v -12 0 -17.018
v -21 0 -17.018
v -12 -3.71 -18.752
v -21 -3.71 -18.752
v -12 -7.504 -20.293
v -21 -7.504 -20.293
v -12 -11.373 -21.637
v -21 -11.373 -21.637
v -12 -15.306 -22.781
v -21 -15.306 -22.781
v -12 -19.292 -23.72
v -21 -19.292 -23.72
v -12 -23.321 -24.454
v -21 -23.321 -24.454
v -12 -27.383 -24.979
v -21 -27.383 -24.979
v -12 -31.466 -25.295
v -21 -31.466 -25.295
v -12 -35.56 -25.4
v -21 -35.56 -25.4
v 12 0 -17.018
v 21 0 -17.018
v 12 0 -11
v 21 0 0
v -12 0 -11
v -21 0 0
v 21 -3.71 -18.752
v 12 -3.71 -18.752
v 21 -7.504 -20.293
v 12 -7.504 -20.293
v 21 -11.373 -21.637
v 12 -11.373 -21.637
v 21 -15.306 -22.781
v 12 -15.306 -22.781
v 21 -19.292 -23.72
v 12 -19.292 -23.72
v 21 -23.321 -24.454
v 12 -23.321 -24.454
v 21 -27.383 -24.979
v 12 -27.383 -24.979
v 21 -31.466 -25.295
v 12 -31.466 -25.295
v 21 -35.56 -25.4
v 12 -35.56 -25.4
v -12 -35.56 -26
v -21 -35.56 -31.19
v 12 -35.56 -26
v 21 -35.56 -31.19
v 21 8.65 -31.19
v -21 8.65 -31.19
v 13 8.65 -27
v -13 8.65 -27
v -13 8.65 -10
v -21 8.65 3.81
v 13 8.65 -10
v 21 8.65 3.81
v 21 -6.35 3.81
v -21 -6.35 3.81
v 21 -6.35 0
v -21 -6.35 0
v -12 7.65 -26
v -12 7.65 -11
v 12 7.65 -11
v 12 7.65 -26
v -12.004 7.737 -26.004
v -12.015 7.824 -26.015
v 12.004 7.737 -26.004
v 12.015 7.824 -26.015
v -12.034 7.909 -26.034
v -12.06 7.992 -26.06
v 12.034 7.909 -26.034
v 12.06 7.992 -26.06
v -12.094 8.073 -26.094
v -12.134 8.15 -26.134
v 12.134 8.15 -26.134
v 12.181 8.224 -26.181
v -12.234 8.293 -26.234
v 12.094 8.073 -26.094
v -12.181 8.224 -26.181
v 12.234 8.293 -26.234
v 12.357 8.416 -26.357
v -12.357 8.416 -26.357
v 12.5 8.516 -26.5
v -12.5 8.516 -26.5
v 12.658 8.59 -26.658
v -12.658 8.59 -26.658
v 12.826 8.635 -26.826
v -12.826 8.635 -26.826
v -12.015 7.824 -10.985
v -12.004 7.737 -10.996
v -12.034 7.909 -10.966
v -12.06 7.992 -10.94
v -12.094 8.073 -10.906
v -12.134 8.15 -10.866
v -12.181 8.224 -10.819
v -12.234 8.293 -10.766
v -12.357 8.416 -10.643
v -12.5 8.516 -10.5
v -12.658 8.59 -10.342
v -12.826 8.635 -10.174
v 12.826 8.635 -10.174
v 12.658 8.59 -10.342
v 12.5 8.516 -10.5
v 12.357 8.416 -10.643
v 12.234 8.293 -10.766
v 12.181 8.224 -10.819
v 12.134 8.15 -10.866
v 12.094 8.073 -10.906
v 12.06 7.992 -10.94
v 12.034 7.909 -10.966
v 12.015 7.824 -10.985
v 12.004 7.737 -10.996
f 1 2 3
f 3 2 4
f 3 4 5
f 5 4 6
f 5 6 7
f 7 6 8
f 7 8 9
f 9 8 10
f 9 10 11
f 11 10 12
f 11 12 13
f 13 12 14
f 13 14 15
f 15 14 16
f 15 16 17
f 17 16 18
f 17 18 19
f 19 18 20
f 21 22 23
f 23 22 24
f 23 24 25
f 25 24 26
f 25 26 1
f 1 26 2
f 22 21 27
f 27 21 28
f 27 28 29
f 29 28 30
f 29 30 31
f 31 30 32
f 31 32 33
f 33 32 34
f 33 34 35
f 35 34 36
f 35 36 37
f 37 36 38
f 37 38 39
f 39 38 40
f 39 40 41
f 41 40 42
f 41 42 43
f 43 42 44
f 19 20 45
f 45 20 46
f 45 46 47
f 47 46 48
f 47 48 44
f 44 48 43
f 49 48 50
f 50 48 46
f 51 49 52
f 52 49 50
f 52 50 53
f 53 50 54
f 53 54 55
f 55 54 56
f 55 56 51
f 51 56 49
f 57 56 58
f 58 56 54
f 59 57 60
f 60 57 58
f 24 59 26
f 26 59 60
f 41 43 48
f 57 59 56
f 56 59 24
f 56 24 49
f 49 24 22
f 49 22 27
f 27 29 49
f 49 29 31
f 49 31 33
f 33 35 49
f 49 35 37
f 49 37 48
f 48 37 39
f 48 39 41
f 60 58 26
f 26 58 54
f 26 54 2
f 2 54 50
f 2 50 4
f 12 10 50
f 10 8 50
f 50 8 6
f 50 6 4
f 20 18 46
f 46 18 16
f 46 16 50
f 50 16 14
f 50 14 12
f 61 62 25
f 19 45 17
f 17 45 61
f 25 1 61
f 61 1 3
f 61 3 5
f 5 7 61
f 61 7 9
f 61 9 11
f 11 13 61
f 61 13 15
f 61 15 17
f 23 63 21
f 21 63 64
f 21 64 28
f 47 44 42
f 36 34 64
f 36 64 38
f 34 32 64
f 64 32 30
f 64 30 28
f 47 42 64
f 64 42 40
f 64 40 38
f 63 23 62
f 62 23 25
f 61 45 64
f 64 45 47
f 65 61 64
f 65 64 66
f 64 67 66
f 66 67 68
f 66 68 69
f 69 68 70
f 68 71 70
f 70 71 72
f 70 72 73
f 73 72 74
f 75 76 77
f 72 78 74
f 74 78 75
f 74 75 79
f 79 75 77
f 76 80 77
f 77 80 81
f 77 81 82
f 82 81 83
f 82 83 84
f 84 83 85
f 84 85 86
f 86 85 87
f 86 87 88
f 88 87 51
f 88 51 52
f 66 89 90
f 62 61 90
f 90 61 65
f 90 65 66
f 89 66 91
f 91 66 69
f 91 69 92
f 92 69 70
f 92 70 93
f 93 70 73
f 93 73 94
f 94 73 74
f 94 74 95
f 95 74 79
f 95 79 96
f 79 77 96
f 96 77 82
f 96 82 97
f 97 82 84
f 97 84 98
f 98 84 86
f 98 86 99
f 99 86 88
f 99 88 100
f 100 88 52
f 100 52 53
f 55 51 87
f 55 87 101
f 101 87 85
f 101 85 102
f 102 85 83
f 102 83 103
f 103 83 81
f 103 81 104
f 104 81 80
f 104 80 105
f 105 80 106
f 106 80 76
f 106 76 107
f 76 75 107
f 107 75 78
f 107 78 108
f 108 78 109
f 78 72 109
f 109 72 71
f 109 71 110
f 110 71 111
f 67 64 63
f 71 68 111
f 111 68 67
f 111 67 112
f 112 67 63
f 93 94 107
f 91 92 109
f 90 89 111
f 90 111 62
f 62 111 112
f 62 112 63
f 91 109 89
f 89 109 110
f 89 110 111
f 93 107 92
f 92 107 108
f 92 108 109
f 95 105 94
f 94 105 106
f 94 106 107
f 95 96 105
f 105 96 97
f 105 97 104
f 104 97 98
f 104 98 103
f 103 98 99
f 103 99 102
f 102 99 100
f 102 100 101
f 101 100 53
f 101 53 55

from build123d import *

# Parameters (mm, degrees)
BOSS_EXTRUDE1_DEPTH = 21
SKETCH3_W           = 24
SKETCH3_H           = 15
CUT_EXTRUDE1_DEPTH  = 59.037403457
FILLET1_R           = 1


with BuildPart() as part:
    # Sketch2 → Boss-Extrude1 (new, symmetric)
    with BuildSketch(Plane(origin=(0, 0, 0), x_dir=(0, 0, -1), z_dir=(1, 0, 0))):
        with BuildLine():
            Line((0, 0), (0, -6.35))
            Line((0, -6.35), (-3.81, -6.35))
            Line((-3.81, -6.35), (-3.81, 8.65))
            Line((-3.81, 8.65), (31.19, 8.65))
            Line((31.19, 8.65), (31.19, -35.56))
            Line((31.19, -35.56), (25.4, -35.56))
            ThreePointArc((25.4, -35.56), (23.276174446, -17.292737452), (17.018, 0))
            Line((17.018, 0), (0, 0))
        make_face()
    extrude(amount=BOSS_EXTRUDE1_DEPTH, both=True)

    # Sketch3 → Cut-Extrude1 (cut, through all)
    with BuildSketch(Plane(origin=(0, 8.65, 0), x_dir=(1, 0, 0), z_dir=(0, 1, 0))):
        with Locations((0, 18.5)):
            Rectangle(SKETCH3_W, SKETCH3_H)
    extrude(amount=-CUT_EXTRUDE1_DEPTH, mode=Mode.SUBTRACT)

    # Fillet1
    fillet1_edges = [part.edges().sort_by_distance(p)[0] for p in [
        (-12, 8.65, -18.5),
        (0, 8.65, -11),
        (12, 8.65, -18.5),
        (0, 8.65, -26),
    ]]
    fillet(fillet1_edges, radius=FILLET1_R)


solid = part.part
